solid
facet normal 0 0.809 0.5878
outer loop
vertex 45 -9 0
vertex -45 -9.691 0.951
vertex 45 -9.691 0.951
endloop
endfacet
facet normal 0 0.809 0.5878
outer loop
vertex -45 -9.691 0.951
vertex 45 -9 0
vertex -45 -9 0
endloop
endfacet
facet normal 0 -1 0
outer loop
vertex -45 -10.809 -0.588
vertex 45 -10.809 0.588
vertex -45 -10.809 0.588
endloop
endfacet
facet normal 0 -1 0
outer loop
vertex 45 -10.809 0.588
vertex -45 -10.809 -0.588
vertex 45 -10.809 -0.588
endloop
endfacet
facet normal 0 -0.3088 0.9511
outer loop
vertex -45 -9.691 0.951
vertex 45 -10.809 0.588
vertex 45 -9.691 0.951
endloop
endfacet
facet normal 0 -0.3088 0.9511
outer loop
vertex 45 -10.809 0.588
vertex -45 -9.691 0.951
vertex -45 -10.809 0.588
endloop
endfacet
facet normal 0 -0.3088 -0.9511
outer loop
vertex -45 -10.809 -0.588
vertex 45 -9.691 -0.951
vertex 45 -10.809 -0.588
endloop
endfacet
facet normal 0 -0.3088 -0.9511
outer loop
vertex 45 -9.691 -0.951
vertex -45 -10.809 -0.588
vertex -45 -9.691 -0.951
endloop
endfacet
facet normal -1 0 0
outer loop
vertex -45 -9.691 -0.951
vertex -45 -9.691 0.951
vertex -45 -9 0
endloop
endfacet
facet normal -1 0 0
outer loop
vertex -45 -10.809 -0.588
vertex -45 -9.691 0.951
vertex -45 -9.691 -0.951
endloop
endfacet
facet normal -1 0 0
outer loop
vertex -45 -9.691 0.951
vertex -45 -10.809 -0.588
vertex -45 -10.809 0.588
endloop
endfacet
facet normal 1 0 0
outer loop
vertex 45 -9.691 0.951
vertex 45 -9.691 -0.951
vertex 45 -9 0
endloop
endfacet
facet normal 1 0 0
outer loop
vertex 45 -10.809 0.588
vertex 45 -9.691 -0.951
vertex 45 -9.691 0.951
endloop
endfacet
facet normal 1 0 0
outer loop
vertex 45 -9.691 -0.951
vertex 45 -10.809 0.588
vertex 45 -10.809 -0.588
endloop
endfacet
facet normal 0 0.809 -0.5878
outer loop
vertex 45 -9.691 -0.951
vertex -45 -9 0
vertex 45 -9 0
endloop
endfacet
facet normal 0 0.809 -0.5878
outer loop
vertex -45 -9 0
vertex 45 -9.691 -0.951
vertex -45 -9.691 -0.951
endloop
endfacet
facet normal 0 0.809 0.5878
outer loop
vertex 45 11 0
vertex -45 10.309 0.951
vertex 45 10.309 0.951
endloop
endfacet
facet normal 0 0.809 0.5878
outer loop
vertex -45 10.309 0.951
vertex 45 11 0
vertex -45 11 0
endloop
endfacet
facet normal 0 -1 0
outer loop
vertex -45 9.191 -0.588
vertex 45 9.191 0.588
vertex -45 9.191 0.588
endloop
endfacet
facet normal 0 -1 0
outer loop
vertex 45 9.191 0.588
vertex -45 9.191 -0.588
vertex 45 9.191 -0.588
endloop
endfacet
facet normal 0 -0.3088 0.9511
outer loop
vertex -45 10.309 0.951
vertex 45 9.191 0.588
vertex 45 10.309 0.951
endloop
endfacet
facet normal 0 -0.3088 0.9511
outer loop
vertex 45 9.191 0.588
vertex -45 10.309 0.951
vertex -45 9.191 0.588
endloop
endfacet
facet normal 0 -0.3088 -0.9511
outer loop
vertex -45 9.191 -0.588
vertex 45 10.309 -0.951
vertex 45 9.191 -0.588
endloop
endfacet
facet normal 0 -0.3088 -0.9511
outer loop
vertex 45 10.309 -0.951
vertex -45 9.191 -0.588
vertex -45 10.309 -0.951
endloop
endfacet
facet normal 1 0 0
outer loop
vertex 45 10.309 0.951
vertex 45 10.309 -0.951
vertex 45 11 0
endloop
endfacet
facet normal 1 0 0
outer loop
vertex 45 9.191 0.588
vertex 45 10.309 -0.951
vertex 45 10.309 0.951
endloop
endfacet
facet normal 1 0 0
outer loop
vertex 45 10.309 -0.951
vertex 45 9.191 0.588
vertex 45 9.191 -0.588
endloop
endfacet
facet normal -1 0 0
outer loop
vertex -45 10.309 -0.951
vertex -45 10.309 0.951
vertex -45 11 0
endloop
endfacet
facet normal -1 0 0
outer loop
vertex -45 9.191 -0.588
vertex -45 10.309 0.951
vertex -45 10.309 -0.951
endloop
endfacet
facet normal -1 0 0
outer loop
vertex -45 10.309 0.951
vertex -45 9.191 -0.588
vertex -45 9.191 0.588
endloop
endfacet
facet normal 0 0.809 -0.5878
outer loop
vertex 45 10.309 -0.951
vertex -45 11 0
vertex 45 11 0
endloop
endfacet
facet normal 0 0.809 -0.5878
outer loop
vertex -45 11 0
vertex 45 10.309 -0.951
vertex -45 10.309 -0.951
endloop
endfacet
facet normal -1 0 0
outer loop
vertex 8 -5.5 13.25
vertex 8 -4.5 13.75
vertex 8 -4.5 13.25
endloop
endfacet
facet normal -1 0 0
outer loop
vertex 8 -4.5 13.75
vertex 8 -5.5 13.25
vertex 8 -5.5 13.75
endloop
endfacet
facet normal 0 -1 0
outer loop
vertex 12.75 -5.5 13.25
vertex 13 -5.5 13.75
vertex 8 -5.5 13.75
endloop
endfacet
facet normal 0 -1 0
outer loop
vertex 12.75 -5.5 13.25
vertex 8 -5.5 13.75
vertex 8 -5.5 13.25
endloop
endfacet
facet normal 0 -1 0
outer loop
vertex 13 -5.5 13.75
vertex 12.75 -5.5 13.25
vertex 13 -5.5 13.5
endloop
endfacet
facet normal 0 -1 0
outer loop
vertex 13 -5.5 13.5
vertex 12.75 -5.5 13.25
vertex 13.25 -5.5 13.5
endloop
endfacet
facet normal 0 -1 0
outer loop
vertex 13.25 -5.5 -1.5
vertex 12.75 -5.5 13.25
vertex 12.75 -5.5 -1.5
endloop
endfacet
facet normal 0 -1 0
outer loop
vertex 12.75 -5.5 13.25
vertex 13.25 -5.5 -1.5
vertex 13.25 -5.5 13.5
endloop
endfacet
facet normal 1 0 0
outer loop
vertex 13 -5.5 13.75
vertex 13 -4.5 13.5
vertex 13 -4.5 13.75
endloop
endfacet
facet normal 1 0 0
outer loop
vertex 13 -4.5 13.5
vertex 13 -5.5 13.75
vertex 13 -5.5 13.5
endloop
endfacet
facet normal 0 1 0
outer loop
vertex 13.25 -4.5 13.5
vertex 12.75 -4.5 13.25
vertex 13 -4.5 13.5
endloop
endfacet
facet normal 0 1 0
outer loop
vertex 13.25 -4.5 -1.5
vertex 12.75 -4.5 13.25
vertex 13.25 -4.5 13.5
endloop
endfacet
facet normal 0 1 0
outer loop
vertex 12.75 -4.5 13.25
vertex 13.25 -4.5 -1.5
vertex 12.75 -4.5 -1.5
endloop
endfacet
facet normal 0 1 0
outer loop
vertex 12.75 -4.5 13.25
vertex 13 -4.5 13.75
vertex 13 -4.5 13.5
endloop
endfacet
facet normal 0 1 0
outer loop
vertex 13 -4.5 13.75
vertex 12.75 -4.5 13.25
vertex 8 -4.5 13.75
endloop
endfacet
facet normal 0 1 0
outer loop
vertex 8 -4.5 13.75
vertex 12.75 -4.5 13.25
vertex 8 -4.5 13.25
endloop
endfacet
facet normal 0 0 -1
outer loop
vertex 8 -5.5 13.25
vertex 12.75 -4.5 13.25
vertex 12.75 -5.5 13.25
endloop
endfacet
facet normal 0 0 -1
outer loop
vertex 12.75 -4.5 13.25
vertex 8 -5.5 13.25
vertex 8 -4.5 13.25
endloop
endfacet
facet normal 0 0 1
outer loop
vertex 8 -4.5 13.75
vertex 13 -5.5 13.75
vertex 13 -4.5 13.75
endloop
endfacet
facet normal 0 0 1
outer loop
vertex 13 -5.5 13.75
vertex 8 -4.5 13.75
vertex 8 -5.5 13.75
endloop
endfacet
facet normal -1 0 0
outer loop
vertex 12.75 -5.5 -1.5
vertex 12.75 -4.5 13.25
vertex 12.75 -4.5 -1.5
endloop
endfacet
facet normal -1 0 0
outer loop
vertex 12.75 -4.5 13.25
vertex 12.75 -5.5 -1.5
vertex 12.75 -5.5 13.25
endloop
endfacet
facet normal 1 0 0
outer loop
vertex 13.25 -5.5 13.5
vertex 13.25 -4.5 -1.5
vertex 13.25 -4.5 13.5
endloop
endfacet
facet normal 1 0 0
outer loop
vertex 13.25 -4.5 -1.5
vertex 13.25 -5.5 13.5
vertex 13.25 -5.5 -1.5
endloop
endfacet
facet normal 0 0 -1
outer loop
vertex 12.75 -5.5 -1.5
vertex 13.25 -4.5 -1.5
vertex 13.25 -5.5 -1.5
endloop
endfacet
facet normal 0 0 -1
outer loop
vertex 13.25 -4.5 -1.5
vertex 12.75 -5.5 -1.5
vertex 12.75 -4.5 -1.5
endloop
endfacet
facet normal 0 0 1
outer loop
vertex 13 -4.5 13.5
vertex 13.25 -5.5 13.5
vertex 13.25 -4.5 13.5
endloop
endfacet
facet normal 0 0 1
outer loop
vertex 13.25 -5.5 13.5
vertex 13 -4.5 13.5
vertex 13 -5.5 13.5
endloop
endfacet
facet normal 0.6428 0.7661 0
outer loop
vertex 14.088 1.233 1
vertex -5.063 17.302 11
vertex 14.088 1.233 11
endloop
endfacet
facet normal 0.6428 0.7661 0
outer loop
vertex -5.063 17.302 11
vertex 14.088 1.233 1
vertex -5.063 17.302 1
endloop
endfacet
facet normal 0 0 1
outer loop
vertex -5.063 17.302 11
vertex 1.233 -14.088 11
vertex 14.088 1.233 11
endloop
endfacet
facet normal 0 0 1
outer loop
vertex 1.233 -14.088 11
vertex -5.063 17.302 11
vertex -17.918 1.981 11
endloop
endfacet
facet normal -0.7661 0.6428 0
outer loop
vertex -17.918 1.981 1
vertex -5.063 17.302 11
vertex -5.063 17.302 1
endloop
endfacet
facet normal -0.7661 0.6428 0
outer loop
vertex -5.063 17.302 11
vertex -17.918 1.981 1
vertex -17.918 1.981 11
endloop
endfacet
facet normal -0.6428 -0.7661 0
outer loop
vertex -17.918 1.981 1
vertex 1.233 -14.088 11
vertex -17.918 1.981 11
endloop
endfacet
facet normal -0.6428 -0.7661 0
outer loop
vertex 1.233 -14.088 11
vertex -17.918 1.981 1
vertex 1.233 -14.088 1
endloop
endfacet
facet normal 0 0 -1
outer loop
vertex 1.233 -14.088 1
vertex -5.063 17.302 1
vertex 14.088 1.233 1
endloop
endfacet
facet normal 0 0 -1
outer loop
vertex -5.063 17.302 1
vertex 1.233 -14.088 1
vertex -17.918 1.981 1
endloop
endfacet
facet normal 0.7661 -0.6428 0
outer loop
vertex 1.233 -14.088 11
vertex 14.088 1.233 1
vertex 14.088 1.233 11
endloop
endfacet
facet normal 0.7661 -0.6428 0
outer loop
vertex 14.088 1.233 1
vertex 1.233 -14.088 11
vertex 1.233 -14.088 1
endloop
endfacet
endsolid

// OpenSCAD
// file: common.scad
module parralel_poles() {
    rotate(90, [0, 0, 1]) {
        rotate(90, [1, 0, 0]) {
            for(width = [-10, 10]) {
                translate([width, 0, 0]) {
                    cylinder(h=90, r1=1, r2=1, center=true);
                }
            }
        }
    }
}
module label() {
    translate([-45, 15, 0]) {
        text(text="BACK", size=5);
    }
    translate([-45, -20, 0]) {
        text(text="FRONT", size=5);
    }
}

module box() {
  translate([0, 2.5, 6]) {
      cube([20,25,10], center=true);
  }
}
// main file
include <common.scad>

parralel_poles();
label();

translate([13, -5, 6]) {
    rotate(90, [1, 0, 0]) {
        translate([-2.5, 7.5, 0]) {
            cube([5, 0.5, 1], center=true);
        }
        cube([0.5, 15, 1], center=true);
        rotate(90, [0, -1, 0]) {
          text("←", size=8);
        }
    }
}

rotate(50, [0, 0, 1]){
  box();
}
